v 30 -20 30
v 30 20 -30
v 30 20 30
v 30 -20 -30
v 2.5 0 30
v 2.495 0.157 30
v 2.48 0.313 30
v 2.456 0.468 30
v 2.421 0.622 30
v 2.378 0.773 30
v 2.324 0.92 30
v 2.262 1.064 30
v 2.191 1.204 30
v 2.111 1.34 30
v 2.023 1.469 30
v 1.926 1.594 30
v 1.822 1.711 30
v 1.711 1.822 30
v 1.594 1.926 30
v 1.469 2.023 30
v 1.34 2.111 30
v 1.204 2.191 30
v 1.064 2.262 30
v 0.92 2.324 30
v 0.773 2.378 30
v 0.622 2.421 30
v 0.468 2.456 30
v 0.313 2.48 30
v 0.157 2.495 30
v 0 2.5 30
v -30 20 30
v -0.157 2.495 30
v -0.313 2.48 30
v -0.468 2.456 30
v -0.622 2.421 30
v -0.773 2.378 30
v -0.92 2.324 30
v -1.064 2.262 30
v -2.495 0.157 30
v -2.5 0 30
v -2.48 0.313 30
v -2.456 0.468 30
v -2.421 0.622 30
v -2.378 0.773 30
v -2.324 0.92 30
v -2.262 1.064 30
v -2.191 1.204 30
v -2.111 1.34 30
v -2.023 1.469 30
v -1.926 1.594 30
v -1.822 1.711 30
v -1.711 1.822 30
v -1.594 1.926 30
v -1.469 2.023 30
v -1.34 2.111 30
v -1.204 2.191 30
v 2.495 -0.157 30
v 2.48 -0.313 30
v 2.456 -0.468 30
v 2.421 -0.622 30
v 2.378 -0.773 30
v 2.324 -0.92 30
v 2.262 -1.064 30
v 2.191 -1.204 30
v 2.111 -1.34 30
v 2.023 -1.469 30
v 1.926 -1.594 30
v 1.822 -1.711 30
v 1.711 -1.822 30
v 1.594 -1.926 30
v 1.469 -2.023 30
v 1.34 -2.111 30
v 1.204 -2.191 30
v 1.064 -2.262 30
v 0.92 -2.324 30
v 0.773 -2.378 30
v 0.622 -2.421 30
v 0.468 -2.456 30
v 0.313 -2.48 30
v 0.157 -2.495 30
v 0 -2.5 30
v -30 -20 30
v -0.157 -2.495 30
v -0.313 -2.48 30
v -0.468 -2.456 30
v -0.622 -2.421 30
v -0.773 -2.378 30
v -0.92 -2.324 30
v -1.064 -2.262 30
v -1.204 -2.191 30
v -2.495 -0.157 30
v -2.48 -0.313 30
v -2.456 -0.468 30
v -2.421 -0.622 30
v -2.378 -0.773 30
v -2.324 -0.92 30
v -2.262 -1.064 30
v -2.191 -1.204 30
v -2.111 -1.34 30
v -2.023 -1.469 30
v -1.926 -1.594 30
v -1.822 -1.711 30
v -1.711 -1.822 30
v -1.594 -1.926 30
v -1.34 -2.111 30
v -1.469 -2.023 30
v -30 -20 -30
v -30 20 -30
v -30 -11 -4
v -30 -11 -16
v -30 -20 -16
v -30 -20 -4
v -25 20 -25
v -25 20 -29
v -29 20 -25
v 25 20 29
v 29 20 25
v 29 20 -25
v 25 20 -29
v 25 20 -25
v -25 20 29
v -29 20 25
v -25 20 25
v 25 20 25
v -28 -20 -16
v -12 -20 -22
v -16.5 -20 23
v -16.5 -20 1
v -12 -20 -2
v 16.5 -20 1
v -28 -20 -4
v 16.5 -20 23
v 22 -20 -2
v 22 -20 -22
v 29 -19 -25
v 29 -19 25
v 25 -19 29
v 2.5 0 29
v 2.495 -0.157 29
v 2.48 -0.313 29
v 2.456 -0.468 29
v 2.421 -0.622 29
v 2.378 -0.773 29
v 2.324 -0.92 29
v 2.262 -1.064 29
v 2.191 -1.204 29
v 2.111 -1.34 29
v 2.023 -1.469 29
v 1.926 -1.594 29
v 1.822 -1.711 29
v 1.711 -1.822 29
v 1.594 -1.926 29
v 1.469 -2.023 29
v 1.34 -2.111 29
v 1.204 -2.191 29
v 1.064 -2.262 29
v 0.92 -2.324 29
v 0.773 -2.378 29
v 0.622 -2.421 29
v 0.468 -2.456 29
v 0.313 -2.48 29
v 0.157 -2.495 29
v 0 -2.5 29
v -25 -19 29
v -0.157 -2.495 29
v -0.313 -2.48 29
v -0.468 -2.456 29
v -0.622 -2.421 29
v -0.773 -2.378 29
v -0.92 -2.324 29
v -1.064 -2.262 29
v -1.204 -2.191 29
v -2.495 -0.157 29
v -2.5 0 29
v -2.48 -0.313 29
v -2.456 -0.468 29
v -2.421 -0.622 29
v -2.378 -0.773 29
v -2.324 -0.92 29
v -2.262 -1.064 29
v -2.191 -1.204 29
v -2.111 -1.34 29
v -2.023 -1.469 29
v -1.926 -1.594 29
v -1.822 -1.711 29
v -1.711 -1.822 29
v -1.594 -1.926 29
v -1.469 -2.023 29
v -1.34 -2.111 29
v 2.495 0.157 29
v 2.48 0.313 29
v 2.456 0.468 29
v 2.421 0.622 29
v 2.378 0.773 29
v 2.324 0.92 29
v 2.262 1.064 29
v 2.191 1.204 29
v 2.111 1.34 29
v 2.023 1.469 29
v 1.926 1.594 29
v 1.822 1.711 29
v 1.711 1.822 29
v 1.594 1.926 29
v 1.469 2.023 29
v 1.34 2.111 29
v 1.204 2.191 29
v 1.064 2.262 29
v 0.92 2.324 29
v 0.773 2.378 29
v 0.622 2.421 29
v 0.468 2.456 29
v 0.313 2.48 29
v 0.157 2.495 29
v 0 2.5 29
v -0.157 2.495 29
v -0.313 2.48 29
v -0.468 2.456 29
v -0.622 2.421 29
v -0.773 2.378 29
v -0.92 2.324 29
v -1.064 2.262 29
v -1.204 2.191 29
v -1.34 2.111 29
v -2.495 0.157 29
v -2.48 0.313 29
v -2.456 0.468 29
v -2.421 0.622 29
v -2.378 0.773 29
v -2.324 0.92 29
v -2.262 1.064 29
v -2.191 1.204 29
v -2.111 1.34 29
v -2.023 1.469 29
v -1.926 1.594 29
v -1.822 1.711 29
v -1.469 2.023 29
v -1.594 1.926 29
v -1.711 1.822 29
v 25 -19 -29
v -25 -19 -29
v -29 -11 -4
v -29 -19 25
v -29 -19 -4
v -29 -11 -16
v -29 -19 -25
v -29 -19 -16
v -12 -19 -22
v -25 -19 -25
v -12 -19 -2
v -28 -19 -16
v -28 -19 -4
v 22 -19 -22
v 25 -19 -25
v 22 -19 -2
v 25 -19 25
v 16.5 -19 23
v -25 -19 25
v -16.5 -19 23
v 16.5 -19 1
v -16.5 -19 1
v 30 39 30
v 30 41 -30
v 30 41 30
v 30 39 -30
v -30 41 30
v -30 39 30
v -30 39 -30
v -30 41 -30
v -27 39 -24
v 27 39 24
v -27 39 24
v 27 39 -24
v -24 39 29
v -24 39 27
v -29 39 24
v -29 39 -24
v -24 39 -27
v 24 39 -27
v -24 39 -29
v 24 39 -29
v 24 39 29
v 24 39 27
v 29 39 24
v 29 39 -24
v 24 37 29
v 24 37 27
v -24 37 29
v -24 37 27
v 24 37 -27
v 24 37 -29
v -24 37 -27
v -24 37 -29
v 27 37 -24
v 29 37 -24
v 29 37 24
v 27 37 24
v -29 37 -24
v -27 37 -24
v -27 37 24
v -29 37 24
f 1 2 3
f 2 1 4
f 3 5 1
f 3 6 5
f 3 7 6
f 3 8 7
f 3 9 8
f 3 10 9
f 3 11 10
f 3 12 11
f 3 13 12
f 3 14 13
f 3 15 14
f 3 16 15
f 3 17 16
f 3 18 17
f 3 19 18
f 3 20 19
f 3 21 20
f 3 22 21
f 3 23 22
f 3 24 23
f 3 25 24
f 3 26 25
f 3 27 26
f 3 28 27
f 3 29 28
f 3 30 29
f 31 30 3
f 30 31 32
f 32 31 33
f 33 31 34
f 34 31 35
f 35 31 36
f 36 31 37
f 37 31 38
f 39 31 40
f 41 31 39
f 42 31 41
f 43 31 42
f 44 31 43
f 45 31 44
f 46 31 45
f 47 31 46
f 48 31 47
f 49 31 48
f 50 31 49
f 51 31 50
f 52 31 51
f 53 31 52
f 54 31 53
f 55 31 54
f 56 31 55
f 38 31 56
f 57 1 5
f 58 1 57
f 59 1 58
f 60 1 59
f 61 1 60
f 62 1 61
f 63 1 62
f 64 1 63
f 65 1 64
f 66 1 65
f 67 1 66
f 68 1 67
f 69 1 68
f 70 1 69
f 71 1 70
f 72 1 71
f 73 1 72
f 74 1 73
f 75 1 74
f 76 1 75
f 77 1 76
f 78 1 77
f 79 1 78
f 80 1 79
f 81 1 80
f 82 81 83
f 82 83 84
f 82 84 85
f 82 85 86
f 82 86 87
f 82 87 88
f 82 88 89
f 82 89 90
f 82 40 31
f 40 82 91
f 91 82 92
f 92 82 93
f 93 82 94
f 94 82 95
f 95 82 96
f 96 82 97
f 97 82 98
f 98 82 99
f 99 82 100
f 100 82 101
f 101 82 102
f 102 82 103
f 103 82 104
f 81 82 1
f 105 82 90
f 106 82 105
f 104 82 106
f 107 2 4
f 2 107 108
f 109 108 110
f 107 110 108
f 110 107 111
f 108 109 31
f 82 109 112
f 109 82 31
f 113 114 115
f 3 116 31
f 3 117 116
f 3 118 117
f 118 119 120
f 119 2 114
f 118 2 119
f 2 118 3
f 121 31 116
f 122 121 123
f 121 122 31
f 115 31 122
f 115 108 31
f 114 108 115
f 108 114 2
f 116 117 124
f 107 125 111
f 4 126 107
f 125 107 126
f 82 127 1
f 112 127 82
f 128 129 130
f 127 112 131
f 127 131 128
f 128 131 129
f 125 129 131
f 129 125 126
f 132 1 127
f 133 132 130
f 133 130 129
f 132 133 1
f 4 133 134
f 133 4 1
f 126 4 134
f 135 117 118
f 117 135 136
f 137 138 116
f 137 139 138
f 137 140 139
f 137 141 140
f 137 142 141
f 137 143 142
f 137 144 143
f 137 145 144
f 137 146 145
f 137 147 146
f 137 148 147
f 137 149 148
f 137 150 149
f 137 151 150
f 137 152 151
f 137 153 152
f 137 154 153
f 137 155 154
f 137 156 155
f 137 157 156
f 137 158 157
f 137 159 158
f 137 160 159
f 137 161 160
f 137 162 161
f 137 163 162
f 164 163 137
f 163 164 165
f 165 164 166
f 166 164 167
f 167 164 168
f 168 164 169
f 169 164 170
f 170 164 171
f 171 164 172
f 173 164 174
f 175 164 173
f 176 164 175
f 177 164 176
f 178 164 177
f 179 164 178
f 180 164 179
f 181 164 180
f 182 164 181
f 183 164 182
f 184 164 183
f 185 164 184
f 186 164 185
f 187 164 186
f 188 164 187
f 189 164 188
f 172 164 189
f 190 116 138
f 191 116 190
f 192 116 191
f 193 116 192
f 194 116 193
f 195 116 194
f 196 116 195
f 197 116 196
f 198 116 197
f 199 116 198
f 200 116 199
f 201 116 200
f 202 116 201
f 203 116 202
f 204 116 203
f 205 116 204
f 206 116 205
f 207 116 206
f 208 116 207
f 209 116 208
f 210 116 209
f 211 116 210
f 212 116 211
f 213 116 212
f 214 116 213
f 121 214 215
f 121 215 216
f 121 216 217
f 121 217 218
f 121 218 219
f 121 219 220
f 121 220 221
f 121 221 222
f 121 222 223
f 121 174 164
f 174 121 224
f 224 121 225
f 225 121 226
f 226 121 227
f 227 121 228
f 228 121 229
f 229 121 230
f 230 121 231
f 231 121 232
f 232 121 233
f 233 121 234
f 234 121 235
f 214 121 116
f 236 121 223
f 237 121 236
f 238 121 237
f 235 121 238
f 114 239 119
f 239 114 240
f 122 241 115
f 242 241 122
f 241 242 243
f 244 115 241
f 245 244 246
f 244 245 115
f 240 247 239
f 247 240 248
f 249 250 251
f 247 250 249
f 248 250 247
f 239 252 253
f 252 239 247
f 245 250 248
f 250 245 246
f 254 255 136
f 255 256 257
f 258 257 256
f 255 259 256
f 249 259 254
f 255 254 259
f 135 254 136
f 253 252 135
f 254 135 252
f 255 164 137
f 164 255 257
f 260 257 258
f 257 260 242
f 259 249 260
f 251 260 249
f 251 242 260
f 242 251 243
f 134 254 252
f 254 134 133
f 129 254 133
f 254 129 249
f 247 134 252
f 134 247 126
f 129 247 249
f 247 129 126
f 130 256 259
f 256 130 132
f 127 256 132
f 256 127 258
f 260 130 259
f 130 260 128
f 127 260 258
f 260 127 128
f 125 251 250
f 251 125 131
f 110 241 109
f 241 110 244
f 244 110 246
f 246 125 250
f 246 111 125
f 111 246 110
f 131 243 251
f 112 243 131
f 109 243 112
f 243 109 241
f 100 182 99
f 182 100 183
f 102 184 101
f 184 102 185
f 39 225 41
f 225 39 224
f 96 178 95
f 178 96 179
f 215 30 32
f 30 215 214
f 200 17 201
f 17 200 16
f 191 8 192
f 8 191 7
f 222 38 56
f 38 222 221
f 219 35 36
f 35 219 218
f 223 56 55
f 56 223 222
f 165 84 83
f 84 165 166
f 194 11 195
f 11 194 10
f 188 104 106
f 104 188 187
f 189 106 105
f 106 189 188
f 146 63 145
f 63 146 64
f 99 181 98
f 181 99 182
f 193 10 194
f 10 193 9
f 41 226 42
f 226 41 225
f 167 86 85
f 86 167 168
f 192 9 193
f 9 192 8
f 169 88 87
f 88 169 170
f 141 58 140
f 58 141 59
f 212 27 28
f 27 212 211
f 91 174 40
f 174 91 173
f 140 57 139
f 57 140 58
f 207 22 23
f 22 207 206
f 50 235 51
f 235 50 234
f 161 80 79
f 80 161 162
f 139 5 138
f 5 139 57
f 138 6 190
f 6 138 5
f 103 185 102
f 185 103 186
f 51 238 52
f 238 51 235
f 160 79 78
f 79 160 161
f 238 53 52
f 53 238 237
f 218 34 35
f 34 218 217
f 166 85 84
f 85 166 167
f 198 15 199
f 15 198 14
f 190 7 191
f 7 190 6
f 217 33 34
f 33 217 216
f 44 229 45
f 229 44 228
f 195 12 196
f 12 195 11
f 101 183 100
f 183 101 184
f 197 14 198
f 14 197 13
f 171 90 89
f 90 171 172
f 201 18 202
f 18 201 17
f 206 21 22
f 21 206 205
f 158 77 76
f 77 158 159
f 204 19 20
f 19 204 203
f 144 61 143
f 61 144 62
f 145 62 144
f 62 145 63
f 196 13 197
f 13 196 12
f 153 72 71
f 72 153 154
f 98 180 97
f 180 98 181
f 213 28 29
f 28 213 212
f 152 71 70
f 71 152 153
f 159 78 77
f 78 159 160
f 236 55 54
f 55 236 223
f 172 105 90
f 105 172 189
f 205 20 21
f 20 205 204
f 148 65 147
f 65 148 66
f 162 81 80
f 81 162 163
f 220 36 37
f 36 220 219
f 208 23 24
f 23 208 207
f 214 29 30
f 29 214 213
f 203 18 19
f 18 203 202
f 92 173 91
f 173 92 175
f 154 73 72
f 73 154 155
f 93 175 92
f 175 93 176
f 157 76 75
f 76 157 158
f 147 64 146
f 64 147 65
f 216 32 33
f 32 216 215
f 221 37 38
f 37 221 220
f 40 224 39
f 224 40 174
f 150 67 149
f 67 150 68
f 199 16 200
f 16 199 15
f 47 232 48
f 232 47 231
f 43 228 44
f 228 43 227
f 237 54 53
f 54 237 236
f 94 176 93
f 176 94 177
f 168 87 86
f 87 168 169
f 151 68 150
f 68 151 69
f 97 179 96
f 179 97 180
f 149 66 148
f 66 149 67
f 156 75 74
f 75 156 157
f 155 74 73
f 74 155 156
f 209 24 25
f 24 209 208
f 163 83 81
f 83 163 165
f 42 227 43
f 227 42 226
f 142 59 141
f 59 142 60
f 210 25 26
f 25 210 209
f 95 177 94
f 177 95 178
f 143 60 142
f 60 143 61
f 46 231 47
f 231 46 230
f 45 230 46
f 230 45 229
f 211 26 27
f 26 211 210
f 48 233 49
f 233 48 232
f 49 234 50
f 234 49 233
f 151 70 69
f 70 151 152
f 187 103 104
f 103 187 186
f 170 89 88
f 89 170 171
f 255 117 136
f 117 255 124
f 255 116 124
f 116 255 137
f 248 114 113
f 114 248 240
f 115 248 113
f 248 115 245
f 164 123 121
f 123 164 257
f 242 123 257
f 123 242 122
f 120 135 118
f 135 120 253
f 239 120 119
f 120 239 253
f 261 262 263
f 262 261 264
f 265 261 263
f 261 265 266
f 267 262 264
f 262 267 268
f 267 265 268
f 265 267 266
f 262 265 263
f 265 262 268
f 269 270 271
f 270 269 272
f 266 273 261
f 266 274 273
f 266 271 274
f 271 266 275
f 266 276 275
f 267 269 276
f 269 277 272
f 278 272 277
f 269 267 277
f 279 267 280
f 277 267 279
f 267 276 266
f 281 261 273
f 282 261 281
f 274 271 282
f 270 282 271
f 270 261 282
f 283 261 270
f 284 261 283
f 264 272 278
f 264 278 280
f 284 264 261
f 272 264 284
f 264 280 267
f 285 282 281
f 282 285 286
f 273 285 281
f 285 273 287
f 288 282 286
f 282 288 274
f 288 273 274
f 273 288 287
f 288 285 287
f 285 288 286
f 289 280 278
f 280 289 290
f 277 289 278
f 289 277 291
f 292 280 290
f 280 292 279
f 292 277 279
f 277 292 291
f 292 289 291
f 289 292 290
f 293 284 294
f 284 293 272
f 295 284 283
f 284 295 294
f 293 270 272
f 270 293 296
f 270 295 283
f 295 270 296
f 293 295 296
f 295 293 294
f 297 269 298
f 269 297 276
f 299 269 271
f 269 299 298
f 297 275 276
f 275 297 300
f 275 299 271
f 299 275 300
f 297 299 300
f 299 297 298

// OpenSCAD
$fn=100;

case=true;
back=true;

screwholes=false;  // optional; only needed if you want the case to be very close (or maybe unopenable without a screwdriver)

width=60;
height=60;
depth=40;

wall=2;

// display
display_width=34;
display_height=20;
display_x=5;
display_z=-12;

// sensor
sensor_width=33;
sensor_height=22;
sensor_x=0;
sensor_z=12;

// usb connector
usb_width=10;
usb_height=12;
usb_x=-33;
usb_z=-10;

// LED
led_diameter=5;
led_z=height/2-wall/2;

if (case) {
  difference() {
    union() {
      difference() { // case
        cube([width,depth,height], center=true);  // body
        translate ([0,wall/2,0]) cube([width-wall,depth,height-wall], center=true); // inner space
        translate([display_x,-depth/2,display_z]) cube([display_width, 10, display_height], center=true); // display
        translate([sensor_x,-depth/2,sensor_z]) cube([sensor_width, 10, sensor_height], center=true); // sensor
        translate([usb_x,-depth/2+wall*2,usb_z]) rotate([90,0,0]) cube([usb_width, usb_height, 10], center=true); // usb connector
        translate([0,0,led_z]) cylinder(d=led_diameter, h=wall*2, center=true); // led
      }
      translate([(width/2-wall*1.5), 0, (height/2-wall*1.5)]) corner();
      translate([-(width/2-wall*1.5), 0, -(height/2-wall*1.5)]) corner();
      translate([-(width/2-wall*1.5), 0, height/2-wall*1.5]) corner();
      translate([width/2-wall*1.5, 0, -(height/2-wall*1.5)]) corner();
    }
    //translate([0,depth*0.9,0]) cube([100,100,100], center=true); // block for print debugging
  }
}

module corner() { // corner blocks for screws
  width=4;
  hole=2.5;
  difference() {
    translate([0,0,0]) cube([width, depth, width], center=true);
    if (screwholes) translate([0,1,0]) rotate([90,0,0]) cylinder(d=hole, h=depth, center=true); // only if you want screwholes
  }
}

if (back) {
  difference() {
    hole=3.5;
    translate([0,depth,0]) union() {
      cube([width,wall,height], center=true); // back plate
      translate([0,-wall,height/2-wall]) cube([width-12,wall,wall], center=true); // top
      translate([0,-wall,-(height/2-wall)]) cube([width-12,wall,wall], center=true); // bottom
      translate([width/2-wall,-wall,0]) rotate ([0,90,0]) cube([width-12,wall,wall], center=true); // left
      translate([-(width/2-wall),-wall,0]) rotate ([0,90,0])  cube([width-12,wall,wall], center=true); // right   
    };
    if (screwholes) { // only if you want screwholes
      translate([width/2-wall*1.5,depth,height/2-wall*1.5]) rotate ([90,0,0]) cylinder(d=hole,h=10, center=true);
      translate([-(width/2-wall*1.5),depth,-(height/2-wall*1.5)]) rotate ([90,0,0]) cylinder(d=hole,h=10, center=true);
      translate([-(width/2-wall*1.5),depth,height/2-wall*1.5]) rotate ([90,0,0]) cylinder(d=hole,h=10, center=true);
      translate([width/2-wall*1.5,depth,-(height/2-wall*1.5)]) rotate ([90,0,0]) cylinder(d=hole,h=10, center=true);
    };
  };
}
